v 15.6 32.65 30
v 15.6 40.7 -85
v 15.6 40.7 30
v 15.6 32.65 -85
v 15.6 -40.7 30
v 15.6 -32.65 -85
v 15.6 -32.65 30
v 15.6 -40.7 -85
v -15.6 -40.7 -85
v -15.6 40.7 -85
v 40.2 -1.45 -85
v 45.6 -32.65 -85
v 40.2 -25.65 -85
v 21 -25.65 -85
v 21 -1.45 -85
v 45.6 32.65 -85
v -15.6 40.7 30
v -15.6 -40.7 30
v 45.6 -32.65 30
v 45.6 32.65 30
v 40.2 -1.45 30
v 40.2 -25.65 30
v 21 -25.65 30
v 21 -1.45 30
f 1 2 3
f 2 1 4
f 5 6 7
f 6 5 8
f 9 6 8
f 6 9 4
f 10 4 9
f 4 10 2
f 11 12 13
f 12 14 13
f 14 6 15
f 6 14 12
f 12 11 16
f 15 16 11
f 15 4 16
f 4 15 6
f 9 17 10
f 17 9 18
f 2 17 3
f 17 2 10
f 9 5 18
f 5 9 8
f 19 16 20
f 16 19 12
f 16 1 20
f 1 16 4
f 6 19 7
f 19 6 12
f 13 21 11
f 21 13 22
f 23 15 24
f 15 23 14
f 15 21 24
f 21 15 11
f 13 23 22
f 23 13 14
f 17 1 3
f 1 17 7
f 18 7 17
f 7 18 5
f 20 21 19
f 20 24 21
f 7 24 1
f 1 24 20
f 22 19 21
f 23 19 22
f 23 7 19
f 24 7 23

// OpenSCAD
// Dock
dock_width=80.2 + 2*0.6; // add nozzle size for vasemode print
dock_height=30 + 2*0.6; // add nozzle size for vasemode print
dock_length=170;

// PSU
psu_width=65.3;
psu_height=30;
psu_length=144;
	
// PSU 220V cable
cable_width=23 + 2*0.6; // add nozzle size for vasemode print
cable_height=18 + 2*0.6; // add nozzle size for vasemode print
cable_length=180;

// dock and psu allignment z
z_allignment_psu=dock_length/2 - psu_length/2;

// PSU 220V cable allignment y
y_allignment_cable=psu_width/2-7-cable_width/2;

module dock_and_psu(){
	// Dock
	cube([dock_height,dock_width,dock_length],center=true);

	// PSU
	translate([dock_height/2 + psu_height/2,0,-z_allignment_psu])
		cube([psu_height,psu_width,psu_length],center=true);
}
difference() {
	dock_and_psu();
	// PSU 220V cable
	translate([dock_height/2 + psu_height/2,-y_allignment_cable,0])
	cube([cable_height,cable_width,cable_length],center=true);

	translate([20,0,60])
		cube(size=[90, 90, 60], center=true);
}
